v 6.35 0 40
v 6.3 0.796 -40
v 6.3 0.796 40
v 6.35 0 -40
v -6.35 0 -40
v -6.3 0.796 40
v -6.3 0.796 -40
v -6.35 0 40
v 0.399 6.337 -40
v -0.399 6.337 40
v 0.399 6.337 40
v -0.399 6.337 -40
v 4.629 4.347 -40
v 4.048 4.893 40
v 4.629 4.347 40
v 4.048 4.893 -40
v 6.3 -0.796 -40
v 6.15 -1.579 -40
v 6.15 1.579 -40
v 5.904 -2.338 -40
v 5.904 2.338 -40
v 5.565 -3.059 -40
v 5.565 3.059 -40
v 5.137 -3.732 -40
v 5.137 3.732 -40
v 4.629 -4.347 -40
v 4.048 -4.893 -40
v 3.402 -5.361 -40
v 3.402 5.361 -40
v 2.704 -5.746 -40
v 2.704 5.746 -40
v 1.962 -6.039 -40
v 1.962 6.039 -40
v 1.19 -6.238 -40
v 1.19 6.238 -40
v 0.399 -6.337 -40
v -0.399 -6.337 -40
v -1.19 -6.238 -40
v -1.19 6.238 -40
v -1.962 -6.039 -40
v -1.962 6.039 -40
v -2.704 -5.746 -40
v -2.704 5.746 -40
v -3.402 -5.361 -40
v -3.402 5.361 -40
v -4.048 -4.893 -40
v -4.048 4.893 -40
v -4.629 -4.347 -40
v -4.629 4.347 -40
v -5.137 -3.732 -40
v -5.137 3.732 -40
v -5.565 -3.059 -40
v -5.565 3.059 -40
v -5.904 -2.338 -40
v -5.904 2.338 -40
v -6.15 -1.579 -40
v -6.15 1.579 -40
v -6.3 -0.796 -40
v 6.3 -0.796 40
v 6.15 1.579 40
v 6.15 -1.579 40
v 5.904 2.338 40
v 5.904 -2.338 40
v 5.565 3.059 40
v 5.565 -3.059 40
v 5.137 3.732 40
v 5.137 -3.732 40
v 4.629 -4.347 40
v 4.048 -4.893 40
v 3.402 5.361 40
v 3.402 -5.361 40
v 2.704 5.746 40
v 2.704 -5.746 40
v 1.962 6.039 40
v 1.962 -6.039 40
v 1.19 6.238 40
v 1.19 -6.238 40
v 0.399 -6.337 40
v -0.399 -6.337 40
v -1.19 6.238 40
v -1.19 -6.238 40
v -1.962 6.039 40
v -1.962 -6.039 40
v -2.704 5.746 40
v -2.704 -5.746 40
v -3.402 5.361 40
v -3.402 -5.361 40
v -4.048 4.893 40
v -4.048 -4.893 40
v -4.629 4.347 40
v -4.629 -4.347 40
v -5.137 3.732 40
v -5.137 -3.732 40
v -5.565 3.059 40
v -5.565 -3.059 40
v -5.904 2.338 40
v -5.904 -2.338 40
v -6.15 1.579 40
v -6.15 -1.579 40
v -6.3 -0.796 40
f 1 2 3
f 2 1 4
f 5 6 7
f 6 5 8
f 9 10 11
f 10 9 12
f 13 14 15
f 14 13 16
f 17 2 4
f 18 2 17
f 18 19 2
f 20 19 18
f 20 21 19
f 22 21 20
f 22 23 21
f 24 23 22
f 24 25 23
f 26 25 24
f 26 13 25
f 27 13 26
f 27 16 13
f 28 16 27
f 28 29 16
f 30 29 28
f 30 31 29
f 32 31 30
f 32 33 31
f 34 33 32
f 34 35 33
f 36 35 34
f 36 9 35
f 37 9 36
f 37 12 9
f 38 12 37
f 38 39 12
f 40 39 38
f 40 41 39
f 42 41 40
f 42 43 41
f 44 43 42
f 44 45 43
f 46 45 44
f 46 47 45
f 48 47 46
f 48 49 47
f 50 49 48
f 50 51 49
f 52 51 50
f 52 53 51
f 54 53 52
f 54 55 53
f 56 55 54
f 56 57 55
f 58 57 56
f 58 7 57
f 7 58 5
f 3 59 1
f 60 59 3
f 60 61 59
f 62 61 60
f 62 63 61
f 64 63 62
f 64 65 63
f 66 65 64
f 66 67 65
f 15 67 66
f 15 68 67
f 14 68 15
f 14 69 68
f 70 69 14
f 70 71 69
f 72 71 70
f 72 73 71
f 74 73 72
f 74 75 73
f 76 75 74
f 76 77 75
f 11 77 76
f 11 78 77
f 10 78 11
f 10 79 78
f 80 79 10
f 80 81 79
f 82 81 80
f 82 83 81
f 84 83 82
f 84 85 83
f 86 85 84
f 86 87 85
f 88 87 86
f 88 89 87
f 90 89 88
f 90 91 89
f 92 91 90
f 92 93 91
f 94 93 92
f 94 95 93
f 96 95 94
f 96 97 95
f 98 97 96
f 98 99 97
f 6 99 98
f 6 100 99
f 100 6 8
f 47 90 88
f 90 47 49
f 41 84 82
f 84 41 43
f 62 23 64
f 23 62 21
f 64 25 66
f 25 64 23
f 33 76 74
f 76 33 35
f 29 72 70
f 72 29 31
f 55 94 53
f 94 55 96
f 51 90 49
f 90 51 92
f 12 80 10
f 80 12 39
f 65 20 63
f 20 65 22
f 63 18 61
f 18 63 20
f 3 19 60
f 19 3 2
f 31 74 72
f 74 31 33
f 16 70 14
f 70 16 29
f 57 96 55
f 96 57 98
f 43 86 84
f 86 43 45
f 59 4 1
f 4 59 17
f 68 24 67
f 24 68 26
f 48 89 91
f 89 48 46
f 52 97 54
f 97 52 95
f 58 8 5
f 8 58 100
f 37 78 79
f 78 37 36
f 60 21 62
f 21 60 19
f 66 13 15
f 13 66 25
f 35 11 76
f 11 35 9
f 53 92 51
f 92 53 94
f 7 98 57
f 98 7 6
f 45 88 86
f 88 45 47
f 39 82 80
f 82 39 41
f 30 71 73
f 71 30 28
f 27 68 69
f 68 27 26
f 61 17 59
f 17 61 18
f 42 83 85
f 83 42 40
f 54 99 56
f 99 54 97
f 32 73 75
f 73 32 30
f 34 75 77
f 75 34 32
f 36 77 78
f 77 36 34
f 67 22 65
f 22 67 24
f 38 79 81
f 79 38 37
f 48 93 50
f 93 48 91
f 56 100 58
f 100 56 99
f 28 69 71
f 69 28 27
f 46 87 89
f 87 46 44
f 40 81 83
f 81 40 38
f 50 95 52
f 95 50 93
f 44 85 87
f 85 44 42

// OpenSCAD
$fn = 50;


difference() {
	union() {
		translate(v = [0, 0, -40.0000000000]) {
			cylinder(h = 80, r = 6.3500000000);
		}
	}
	union() {
		translate(v = [0, 0, -100.0000000000]) {
			cylinder(h = 200, r = 0);
		}
	}
}
